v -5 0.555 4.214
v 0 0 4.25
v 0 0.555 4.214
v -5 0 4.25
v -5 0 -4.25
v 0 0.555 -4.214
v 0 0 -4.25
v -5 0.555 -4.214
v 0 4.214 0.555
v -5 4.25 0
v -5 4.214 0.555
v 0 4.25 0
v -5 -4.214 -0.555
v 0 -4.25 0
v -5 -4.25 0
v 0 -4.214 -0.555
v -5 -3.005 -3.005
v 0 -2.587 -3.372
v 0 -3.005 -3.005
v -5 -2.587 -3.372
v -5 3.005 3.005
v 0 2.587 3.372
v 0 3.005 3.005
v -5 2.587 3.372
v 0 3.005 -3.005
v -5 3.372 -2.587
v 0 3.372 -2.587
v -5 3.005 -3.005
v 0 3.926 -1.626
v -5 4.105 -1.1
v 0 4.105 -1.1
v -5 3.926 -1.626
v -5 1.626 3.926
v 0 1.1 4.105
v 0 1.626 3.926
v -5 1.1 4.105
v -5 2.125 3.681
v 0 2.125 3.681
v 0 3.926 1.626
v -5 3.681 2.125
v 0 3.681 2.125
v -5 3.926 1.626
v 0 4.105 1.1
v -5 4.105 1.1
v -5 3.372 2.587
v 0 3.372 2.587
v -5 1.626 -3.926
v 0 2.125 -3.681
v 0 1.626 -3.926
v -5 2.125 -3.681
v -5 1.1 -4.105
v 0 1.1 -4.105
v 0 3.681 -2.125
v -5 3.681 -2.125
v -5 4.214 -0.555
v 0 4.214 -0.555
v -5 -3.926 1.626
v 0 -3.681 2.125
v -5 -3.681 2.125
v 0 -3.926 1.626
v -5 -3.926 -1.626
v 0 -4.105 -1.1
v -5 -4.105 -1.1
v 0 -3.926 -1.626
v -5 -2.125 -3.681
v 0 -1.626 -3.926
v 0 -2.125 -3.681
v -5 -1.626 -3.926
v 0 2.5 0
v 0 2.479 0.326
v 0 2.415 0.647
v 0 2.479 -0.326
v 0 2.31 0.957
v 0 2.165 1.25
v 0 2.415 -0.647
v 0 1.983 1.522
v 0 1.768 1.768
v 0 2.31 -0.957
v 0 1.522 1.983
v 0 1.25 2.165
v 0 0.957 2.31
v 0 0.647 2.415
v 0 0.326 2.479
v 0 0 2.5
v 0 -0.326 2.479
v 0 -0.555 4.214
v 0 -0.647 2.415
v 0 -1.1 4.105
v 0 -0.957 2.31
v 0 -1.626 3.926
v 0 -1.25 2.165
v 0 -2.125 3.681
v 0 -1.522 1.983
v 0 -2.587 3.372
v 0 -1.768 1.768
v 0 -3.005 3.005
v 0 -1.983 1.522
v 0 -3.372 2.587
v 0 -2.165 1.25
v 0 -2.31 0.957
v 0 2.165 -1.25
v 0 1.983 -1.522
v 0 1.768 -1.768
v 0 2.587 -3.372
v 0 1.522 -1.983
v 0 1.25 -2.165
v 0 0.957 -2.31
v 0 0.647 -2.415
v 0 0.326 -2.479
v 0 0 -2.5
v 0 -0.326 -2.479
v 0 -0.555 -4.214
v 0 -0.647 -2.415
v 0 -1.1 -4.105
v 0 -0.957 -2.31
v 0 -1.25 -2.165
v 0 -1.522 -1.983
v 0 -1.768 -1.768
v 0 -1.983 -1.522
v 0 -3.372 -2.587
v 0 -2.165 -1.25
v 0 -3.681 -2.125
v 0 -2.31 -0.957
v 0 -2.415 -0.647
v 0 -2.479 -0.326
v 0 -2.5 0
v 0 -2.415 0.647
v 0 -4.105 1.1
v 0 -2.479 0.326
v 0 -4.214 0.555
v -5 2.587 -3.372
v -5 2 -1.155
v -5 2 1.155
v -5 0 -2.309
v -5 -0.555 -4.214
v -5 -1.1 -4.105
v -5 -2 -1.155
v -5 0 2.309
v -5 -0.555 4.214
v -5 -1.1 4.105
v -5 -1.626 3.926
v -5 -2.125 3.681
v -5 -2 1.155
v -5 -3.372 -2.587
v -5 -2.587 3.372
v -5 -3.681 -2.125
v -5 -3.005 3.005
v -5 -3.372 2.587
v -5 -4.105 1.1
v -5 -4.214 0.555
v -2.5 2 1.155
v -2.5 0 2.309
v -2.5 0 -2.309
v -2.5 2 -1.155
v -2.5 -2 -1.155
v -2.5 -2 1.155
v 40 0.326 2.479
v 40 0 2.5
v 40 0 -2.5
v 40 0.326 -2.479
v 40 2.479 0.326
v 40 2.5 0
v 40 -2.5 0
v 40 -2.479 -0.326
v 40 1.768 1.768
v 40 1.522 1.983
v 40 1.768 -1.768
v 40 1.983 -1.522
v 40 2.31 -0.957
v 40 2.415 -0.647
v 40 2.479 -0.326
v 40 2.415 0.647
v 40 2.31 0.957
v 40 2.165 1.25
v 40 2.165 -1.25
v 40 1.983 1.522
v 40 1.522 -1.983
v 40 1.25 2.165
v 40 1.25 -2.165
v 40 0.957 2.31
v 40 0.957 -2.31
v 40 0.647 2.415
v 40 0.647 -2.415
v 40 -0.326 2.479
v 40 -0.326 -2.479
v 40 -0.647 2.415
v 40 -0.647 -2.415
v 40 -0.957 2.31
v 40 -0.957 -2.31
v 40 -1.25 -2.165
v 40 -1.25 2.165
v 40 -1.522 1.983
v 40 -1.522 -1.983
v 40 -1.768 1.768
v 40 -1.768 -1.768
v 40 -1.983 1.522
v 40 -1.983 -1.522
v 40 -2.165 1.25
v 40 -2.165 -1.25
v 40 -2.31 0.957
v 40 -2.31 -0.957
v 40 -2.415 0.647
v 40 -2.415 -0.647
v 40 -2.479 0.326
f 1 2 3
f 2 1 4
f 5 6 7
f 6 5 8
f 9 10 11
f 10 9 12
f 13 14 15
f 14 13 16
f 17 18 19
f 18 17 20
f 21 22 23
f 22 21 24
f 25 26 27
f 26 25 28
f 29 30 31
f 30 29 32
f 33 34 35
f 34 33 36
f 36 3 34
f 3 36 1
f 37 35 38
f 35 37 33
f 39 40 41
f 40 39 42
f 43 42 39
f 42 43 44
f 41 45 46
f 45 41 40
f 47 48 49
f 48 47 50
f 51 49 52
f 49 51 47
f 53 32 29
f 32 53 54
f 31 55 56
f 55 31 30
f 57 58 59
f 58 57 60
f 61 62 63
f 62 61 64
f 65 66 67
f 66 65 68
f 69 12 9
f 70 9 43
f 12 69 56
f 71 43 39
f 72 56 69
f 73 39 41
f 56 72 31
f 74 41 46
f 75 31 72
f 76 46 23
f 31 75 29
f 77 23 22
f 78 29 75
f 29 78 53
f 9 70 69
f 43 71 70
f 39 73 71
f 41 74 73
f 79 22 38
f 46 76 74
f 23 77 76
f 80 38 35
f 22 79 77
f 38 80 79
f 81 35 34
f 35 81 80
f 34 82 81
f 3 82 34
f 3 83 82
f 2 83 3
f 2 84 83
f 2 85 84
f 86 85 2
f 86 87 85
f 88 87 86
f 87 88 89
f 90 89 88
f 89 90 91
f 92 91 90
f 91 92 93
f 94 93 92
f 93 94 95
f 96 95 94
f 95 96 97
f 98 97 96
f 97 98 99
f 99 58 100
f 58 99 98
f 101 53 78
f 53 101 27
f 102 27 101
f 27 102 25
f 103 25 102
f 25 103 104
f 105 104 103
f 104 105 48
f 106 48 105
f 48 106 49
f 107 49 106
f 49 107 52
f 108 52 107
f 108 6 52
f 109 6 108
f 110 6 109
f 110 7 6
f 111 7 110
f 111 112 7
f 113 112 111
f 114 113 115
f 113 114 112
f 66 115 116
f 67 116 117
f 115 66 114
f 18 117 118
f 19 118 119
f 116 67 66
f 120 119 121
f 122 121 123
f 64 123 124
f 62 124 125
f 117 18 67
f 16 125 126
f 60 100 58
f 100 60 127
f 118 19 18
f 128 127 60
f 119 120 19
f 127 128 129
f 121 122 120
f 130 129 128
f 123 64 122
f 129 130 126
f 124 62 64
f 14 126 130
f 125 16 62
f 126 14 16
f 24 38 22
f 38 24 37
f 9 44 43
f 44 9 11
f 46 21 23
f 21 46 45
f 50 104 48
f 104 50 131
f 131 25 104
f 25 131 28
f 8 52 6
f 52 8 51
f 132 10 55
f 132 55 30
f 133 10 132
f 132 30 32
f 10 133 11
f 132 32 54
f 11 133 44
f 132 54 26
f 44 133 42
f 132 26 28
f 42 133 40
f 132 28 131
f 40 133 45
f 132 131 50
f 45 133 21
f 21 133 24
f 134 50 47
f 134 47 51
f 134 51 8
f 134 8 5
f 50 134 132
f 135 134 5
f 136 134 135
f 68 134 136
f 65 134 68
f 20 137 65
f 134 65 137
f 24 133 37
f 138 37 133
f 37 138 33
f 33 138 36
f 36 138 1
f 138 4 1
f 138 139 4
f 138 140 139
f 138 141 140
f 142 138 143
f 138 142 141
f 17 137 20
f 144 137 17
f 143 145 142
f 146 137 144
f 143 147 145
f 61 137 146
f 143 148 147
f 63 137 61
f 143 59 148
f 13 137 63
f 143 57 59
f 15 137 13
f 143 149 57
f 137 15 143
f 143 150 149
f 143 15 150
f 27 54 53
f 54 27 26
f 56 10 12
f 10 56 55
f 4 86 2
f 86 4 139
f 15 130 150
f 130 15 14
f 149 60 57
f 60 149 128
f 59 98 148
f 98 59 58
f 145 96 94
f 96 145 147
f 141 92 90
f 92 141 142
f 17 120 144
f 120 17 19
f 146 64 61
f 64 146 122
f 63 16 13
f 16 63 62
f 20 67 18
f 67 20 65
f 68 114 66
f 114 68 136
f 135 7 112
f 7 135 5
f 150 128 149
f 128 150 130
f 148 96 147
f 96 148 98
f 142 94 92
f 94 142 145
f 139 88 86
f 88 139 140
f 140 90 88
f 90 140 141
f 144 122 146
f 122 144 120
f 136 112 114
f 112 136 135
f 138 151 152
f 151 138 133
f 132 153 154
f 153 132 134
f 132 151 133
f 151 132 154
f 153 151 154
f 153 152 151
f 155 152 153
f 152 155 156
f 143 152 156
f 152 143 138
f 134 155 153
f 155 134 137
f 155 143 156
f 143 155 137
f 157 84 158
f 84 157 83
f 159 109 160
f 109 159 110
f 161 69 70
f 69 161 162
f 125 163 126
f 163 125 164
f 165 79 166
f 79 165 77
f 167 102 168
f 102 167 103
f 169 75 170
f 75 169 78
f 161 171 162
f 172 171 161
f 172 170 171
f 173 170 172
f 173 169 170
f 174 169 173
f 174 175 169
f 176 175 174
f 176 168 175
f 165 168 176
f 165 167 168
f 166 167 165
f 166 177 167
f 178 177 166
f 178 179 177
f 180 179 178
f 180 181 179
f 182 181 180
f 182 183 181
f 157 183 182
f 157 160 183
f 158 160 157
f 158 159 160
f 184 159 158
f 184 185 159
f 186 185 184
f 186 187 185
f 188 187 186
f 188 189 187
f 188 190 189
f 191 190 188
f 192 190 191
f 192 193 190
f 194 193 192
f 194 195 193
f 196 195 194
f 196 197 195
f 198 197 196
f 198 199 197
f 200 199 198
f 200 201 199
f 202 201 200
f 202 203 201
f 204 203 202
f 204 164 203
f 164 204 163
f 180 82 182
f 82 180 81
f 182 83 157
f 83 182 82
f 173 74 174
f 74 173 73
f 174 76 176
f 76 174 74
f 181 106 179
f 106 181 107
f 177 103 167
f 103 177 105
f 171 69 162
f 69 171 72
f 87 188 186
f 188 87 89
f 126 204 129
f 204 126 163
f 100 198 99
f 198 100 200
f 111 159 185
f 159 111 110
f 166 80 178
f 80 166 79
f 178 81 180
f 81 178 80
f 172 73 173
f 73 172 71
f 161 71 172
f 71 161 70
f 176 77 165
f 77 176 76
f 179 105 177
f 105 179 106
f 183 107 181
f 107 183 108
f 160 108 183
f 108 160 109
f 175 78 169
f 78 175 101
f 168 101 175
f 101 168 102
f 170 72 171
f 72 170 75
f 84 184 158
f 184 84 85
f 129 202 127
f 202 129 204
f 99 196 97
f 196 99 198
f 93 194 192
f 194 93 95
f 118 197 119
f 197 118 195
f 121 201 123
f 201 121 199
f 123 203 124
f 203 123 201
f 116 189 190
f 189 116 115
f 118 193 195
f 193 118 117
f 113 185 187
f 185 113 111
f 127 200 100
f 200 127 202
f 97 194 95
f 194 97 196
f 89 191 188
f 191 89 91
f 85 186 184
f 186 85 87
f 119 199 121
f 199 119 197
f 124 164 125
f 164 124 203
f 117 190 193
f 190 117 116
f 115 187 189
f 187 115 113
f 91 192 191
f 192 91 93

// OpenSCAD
// file: ../../../lib/nutsnbolts/data-access.scad
// Norm Nuts and Bolts - a OpenSCAD library
// Copyright (C) 2012  Johannes Kneer

// This program is free software: you can redistribute it and/or modify
// it under the terms of the GNU General Public License as published by
// the Free Software Foundation, either version 3 of the License, or
// (at your option) any later version.

// This program is distributed in the hope that it will be useful,
// but WITHOUT ANY WARRANTY; without even the implied warranty of
// MERCHANTABILITY or FITNESS FOR A PARTICULAR PURPOSE.  See the
// GNU General Public License for more details.

// You should have received a copy of the GNU General Public License
// along with this program.  If not, see <http://www.gnu.org/licenses/>.


// DATABASE ACCESS FUNCTIONS AND CONSTANTS



// == CONSTANTS ==

// screw table access keys
_NB_S_DESC            = 0;
_NB_S_FAMKEY			    = 1;
_NB_S_LENGTH          = 2;
_NB_S_NOTHREAD_LENGTH = 3;

_NB_F_DESC			      = 0;
_NB_F_OUTER_DIA       = 1;
_NB_F_INNER_DIA       = 2;
_NB_F_LEAD            = 3;
_NB_F_KEY             = 4;
_NB_F_KEY_DEPTH       = 5;
_NB_F_HEAD_HEIGHT     = 6;
_NB_F_HEAD_DIA        = 7;
_NB_F_NUT_KEY         = 8;
_NB_F_NUT_HEIGHT      = 9;
_NB_F_PITCH_FINE      = 10;
_NB_F_PITCH_MEDIUM    = 11;
_NB_F_PITCH_COARSE    = 12;


// == FUNCTIONS ==

// _get_screw("descriptor")   with descriptor = M8x25
//   find the line for a general object in the data matrix

function _get_screw(n) = data_screw[search([n], data_screw)[0]];
function _get_screw_fam(n) = data_screw_fam[search([_get_screw(n)[_NB_S_FAMKEY]], data_screw_fam)[0]];

function _get_fam(n) = data_screw_fam[search([n], data_screw_fam)[0]];


// _get_XXXXX("descriptor") functions
// find a single property in the database

function _get_desc(n)        = _get_screw(n)[_NB_S_DESC];
function _get_famkey(n)         = _get_screw(n)[_NB_S_FAMKEY];
function _get_length(n)      = _get_screw(n)[_NB_S_LENGTH];
function _get_nt_length(n)   = _get_screw(n)[_NB_S_NOTHREAD_LENGTH];

function _get_outer_dia(n)   = _get_screw_fam(n)[_NB_F_OUTER_DIA];
function _get_inner_dia(n)   = _get_screw_fam(n)[_NB_F_INNER_DIA];
function _get_lead(n)        = _get_screw_fam(n)[_NB_F_LEAD];
function _get_head_height(n) = _get_screw_fam(n)[_NB_F_HEAD_HEIGHT];
function _get_head_dia(n)    = _get_screw_fam(n)[_NB_F_HEAD_DIA];
function _get_nut_key(n)     = _get_screw_fam(n)[_NB_F_NUT_KEY];
function _get_nut_height(n)  = _get_screw_fam(n)[_NB_F_NUT_HEIGHT];
function _get_fine_pitch(n)  = _get_screw_fam(n)[_NB_F_PITCH_FINE];
function _get_medium_pitch(n)  = _get_screw_fam(n)[_NB_F_PITCH_MEDIUM];
function _get_coarse_pitch(n)  = _get_screw_fam(n)[_NB_F_PITCH_COARSE];
// main file
/**********************************************************************************************************************
 **
 ** parts/vitamins/screw_M5x40.scad
 **
 ** This file renders a screw of the dimensions specified by the file name.
 **
 **********************************************************************************************************************/

include <../../../lib/nutsnbolts/cyl_head_bolt.scad>;

$fn = 48;
rotate([0, -90, 0])
	screw("M5x40"); 
